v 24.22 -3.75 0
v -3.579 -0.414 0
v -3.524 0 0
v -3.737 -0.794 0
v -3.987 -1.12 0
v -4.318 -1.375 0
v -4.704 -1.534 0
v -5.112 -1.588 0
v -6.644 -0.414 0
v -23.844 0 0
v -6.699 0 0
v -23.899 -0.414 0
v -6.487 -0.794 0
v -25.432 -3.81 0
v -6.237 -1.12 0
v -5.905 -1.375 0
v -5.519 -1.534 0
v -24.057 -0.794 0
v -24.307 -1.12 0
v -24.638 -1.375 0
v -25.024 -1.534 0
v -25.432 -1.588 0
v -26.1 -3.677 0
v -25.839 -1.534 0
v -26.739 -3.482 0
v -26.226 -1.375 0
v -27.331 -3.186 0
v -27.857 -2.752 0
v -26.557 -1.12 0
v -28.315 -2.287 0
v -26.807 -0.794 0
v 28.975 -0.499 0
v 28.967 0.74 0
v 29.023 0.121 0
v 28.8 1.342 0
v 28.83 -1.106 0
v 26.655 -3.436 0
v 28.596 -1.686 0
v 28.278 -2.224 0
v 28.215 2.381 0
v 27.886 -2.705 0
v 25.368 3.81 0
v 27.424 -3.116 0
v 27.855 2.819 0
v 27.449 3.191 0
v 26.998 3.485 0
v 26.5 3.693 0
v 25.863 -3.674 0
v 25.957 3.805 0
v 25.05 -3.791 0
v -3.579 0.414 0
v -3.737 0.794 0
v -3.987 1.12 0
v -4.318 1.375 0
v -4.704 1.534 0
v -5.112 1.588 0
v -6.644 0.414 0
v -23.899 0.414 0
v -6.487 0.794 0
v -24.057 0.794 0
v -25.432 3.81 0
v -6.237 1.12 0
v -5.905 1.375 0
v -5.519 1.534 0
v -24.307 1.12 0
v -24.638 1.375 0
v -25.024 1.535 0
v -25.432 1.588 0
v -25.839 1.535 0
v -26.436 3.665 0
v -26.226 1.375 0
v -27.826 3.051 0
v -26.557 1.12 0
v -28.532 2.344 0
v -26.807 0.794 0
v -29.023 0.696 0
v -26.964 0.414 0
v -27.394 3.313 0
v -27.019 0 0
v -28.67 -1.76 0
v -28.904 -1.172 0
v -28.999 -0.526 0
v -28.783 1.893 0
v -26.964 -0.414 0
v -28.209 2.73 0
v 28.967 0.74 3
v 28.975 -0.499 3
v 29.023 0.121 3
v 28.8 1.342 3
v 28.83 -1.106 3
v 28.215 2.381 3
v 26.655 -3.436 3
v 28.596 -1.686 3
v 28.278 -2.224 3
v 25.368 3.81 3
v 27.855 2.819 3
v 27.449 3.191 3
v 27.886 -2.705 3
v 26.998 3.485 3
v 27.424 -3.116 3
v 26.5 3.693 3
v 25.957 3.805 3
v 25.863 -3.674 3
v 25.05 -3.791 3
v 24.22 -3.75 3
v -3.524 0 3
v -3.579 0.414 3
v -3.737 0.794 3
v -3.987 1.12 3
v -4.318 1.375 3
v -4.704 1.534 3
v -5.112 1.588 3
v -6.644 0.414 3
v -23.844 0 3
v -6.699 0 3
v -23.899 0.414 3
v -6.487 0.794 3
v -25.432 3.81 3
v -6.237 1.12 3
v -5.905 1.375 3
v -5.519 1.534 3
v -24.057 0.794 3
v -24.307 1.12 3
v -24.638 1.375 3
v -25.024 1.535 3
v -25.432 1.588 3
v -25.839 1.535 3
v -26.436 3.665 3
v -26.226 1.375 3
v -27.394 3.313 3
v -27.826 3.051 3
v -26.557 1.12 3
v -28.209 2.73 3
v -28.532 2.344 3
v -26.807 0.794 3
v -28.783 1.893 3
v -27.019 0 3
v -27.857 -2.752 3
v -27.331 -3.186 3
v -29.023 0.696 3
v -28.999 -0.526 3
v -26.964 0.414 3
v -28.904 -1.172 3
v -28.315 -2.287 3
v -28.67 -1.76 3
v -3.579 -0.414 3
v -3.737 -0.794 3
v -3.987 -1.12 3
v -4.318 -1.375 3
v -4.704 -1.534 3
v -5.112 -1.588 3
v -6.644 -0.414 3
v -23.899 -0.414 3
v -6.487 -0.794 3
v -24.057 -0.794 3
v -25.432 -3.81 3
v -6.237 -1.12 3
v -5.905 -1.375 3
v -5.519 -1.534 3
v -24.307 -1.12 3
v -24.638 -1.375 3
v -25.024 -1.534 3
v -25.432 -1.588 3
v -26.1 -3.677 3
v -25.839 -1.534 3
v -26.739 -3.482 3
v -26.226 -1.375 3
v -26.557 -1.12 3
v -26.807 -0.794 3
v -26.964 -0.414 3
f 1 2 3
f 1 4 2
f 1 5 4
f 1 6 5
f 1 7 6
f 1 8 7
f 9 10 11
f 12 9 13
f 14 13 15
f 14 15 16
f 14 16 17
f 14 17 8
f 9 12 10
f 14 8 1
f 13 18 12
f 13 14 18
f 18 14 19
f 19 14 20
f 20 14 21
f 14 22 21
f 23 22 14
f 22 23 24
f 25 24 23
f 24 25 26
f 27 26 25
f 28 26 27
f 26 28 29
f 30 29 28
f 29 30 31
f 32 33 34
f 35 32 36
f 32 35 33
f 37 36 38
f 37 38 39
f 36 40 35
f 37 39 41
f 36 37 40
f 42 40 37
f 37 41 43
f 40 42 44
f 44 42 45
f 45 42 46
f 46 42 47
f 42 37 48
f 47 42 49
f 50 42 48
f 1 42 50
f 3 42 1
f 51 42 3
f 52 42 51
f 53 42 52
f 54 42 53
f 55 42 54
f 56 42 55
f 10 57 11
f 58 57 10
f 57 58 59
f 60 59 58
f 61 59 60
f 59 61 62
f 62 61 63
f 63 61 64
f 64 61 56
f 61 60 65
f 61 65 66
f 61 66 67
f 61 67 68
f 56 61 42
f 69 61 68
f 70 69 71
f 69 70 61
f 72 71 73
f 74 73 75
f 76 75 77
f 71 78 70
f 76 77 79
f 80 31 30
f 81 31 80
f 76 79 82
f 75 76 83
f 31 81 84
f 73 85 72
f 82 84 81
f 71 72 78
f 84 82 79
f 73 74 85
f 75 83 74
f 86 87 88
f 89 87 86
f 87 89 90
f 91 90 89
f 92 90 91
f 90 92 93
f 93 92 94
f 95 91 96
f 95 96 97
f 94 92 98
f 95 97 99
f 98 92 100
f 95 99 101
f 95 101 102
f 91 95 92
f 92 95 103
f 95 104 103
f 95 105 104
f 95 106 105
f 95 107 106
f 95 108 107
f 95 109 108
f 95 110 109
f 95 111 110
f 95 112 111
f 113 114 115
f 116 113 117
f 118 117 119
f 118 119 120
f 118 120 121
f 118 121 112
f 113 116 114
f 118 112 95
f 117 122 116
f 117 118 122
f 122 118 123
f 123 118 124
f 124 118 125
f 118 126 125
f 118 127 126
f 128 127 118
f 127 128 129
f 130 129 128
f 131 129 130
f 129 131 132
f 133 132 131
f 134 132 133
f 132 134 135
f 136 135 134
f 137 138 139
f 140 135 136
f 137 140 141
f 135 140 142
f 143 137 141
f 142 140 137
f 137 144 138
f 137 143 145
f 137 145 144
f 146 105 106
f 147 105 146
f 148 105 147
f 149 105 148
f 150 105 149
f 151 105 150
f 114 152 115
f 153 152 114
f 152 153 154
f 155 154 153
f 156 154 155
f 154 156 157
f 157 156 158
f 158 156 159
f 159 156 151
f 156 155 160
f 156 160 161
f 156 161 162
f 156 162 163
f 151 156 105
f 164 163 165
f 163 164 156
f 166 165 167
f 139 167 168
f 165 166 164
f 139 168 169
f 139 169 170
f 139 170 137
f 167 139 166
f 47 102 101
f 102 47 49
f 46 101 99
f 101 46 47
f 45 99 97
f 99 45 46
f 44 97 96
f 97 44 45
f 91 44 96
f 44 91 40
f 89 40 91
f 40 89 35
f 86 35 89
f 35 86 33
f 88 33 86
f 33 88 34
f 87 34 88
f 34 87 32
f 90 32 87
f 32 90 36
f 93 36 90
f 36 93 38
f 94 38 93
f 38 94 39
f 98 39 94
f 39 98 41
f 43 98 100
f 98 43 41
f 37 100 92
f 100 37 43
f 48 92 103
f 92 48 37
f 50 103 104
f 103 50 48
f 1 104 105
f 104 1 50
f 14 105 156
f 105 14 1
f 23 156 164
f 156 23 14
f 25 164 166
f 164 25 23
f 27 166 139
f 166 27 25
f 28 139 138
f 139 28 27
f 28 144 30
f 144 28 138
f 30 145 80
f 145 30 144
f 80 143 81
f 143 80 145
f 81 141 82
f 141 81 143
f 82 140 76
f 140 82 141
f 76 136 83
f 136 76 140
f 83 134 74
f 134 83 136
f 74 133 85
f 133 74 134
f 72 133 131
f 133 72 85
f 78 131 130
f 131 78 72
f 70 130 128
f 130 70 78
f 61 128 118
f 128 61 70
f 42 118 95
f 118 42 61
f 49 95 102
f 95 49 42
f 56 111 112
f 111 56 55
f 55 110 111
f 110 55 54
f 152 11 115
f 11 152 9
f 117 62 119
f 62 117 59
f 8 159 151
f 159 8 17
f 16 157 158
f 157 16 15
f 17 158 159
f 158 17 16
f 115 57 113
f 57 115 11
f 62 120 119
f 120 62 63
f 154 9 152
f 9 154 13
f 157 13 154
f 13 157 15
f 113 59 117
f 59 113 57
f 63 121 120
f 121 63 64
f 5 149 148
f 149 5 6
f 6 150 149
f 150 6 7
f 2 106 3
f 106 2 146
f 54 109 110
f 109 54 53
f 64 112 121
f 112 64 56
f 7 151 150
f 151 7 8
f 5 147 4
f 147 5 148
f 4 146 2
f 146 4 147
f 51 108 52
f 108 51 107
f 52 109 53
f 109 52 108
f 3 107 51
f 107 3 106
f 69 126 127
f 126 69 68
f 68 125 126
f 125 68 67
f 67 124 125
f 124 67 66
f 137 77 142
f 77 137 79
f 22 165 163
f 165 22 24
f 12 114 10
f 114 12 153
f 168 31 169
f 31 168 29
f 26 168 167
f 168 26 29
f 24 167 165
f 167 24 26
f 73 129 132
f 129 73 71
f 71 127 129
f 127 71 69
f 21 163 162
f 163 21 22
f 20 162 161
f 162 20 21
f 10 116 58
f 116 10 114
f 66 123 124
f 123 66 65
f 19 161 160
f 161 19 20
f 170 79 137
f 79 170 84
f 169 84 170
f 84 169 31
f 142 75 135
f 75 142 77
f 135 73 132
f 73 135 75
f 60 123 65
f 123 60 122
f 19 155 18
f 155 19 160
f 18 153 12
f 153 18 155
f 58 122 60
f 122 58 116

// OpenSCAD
// Module names are of the form poly_<inkscape-path-id>().  As a result,
// you can associate a polygon in this OpenSCAD program with the corresponding
// SVG element in the Inkscape document by looking for the XML element with
// the attribute id="inkscape-path-id".

// fudge value is used to ensure that subtracted solids are a tad taller
// in the z dimension than the polygon being subtracted from.  This helps
// keep the resulting .stl file manifold.
fudge = 0.1;

module poly_path908(h)
{
  scale([25.4/96, -25.4/96, 1]) union()
  {
    difference()
    {
       linear_extrude(height=h)
         polygon([[-96.119970,-14.400000],[95.880033,-14.400000],[98.106636,-14.380759],[100.159124,-13.959534],[102.038083,-13.173486],[103.744096,-12.059775],[105.277749,-10.655561],[106.639626,-8.998003],[108.850393,-5.071500],[109.482356,-2.795455],[109.694330,-0.458016],[109.513162,1.885813],[108.965697,4.181025],[108.078782,6.372615],[106.879262,8.405578],[105.393984,10.224908],[103.649793,11.775600],[100.742812,12.987061],[97.748748,13.885463],[94.678312,14.328408],[91.542213,14.173500],[-96.119970,14.400000],[-98.645894,13.897770],[-101.061042,13.160163],[-103.297233,12.042323],[-105.286286,10.399400],[-107.016697,8.645425],[-108.357235,6.652350],[-109.241727,4.430150],[-109.604001,1.988800],[-109.694330,-2.631363],[-108.784614,-7.153200],[-107.837539,-8.860807],[-106.616731,-10.316981],[-105.168199,-11.532902],[-103.537951,-12.519750],[-99.916341,-13.850944],[-96.119970,-14.400000]]);
       translate([0, 0, -fudge])
         linear_extrude(height=h+2*fudge)
           polygon([[-13.319973,0.000000],[-13.527666,-1.565506],[-14.123820,-3.000000],[-15.068051,-4.233532],[-16.319973,-5.196152],[-17.779587,-5.799038],[-19.319973,-6.000000],[-20.860358,-5.799038],[-22.319973,-5.196152],[-23.571894,-4.233532],[-24.516125,-3.000000],[-25.112280,-1.565506],[-25.319973,0.000000],[-25.112280,1.565506],[-24.516125,3.000000],[-23.571894,4.233532],[-22.319973,5.196152],[-20.860358,5.799038],[-19.319973,6.000000],[-17.779587,5.799038],[-16.319973,5.196152],[-15.068051,4.233532],[-14.123820,3.000000],[-13.527666,1.565506],[-13.319973,0.000000]]);
       translate([0, 0, -fudge])
         linear_extrude(height=h+2*fudge)
           polygon([[-90.119970,-0.000000],[-90.327495,-1.565661],[-90.923559,-3.000328],[-91.867773,-4.234030],[-93.119746,-5.196798],[-94.579463,-5.799781],[-96.119970,-6.000775],[-97.660478,-5.799781],[-99.120194,-5.196798],[-100.372167,-4.234030],[-101.316381,-3.000328],[-101.912445,-1.565661],[-102.119970,0.000000],[-101.912278,1.565506],[-101.316123,3.000000],[-100.371892,4.233533],[-99.119970,5.196153],[-97.660356,5.799039],[-96.119970,6.000001],[-94.579584,5.799039],[-93.119970,5.196153],[-91.868048,4.233533],[-90.923817,3.000000],[-90.327663,1.565506],[-90.119970,0.000000],[-90.119970,0.000000]]);
    }
  }
}

module inkscape(h)
{

poly_path908(h);
}

inkscape(3);
